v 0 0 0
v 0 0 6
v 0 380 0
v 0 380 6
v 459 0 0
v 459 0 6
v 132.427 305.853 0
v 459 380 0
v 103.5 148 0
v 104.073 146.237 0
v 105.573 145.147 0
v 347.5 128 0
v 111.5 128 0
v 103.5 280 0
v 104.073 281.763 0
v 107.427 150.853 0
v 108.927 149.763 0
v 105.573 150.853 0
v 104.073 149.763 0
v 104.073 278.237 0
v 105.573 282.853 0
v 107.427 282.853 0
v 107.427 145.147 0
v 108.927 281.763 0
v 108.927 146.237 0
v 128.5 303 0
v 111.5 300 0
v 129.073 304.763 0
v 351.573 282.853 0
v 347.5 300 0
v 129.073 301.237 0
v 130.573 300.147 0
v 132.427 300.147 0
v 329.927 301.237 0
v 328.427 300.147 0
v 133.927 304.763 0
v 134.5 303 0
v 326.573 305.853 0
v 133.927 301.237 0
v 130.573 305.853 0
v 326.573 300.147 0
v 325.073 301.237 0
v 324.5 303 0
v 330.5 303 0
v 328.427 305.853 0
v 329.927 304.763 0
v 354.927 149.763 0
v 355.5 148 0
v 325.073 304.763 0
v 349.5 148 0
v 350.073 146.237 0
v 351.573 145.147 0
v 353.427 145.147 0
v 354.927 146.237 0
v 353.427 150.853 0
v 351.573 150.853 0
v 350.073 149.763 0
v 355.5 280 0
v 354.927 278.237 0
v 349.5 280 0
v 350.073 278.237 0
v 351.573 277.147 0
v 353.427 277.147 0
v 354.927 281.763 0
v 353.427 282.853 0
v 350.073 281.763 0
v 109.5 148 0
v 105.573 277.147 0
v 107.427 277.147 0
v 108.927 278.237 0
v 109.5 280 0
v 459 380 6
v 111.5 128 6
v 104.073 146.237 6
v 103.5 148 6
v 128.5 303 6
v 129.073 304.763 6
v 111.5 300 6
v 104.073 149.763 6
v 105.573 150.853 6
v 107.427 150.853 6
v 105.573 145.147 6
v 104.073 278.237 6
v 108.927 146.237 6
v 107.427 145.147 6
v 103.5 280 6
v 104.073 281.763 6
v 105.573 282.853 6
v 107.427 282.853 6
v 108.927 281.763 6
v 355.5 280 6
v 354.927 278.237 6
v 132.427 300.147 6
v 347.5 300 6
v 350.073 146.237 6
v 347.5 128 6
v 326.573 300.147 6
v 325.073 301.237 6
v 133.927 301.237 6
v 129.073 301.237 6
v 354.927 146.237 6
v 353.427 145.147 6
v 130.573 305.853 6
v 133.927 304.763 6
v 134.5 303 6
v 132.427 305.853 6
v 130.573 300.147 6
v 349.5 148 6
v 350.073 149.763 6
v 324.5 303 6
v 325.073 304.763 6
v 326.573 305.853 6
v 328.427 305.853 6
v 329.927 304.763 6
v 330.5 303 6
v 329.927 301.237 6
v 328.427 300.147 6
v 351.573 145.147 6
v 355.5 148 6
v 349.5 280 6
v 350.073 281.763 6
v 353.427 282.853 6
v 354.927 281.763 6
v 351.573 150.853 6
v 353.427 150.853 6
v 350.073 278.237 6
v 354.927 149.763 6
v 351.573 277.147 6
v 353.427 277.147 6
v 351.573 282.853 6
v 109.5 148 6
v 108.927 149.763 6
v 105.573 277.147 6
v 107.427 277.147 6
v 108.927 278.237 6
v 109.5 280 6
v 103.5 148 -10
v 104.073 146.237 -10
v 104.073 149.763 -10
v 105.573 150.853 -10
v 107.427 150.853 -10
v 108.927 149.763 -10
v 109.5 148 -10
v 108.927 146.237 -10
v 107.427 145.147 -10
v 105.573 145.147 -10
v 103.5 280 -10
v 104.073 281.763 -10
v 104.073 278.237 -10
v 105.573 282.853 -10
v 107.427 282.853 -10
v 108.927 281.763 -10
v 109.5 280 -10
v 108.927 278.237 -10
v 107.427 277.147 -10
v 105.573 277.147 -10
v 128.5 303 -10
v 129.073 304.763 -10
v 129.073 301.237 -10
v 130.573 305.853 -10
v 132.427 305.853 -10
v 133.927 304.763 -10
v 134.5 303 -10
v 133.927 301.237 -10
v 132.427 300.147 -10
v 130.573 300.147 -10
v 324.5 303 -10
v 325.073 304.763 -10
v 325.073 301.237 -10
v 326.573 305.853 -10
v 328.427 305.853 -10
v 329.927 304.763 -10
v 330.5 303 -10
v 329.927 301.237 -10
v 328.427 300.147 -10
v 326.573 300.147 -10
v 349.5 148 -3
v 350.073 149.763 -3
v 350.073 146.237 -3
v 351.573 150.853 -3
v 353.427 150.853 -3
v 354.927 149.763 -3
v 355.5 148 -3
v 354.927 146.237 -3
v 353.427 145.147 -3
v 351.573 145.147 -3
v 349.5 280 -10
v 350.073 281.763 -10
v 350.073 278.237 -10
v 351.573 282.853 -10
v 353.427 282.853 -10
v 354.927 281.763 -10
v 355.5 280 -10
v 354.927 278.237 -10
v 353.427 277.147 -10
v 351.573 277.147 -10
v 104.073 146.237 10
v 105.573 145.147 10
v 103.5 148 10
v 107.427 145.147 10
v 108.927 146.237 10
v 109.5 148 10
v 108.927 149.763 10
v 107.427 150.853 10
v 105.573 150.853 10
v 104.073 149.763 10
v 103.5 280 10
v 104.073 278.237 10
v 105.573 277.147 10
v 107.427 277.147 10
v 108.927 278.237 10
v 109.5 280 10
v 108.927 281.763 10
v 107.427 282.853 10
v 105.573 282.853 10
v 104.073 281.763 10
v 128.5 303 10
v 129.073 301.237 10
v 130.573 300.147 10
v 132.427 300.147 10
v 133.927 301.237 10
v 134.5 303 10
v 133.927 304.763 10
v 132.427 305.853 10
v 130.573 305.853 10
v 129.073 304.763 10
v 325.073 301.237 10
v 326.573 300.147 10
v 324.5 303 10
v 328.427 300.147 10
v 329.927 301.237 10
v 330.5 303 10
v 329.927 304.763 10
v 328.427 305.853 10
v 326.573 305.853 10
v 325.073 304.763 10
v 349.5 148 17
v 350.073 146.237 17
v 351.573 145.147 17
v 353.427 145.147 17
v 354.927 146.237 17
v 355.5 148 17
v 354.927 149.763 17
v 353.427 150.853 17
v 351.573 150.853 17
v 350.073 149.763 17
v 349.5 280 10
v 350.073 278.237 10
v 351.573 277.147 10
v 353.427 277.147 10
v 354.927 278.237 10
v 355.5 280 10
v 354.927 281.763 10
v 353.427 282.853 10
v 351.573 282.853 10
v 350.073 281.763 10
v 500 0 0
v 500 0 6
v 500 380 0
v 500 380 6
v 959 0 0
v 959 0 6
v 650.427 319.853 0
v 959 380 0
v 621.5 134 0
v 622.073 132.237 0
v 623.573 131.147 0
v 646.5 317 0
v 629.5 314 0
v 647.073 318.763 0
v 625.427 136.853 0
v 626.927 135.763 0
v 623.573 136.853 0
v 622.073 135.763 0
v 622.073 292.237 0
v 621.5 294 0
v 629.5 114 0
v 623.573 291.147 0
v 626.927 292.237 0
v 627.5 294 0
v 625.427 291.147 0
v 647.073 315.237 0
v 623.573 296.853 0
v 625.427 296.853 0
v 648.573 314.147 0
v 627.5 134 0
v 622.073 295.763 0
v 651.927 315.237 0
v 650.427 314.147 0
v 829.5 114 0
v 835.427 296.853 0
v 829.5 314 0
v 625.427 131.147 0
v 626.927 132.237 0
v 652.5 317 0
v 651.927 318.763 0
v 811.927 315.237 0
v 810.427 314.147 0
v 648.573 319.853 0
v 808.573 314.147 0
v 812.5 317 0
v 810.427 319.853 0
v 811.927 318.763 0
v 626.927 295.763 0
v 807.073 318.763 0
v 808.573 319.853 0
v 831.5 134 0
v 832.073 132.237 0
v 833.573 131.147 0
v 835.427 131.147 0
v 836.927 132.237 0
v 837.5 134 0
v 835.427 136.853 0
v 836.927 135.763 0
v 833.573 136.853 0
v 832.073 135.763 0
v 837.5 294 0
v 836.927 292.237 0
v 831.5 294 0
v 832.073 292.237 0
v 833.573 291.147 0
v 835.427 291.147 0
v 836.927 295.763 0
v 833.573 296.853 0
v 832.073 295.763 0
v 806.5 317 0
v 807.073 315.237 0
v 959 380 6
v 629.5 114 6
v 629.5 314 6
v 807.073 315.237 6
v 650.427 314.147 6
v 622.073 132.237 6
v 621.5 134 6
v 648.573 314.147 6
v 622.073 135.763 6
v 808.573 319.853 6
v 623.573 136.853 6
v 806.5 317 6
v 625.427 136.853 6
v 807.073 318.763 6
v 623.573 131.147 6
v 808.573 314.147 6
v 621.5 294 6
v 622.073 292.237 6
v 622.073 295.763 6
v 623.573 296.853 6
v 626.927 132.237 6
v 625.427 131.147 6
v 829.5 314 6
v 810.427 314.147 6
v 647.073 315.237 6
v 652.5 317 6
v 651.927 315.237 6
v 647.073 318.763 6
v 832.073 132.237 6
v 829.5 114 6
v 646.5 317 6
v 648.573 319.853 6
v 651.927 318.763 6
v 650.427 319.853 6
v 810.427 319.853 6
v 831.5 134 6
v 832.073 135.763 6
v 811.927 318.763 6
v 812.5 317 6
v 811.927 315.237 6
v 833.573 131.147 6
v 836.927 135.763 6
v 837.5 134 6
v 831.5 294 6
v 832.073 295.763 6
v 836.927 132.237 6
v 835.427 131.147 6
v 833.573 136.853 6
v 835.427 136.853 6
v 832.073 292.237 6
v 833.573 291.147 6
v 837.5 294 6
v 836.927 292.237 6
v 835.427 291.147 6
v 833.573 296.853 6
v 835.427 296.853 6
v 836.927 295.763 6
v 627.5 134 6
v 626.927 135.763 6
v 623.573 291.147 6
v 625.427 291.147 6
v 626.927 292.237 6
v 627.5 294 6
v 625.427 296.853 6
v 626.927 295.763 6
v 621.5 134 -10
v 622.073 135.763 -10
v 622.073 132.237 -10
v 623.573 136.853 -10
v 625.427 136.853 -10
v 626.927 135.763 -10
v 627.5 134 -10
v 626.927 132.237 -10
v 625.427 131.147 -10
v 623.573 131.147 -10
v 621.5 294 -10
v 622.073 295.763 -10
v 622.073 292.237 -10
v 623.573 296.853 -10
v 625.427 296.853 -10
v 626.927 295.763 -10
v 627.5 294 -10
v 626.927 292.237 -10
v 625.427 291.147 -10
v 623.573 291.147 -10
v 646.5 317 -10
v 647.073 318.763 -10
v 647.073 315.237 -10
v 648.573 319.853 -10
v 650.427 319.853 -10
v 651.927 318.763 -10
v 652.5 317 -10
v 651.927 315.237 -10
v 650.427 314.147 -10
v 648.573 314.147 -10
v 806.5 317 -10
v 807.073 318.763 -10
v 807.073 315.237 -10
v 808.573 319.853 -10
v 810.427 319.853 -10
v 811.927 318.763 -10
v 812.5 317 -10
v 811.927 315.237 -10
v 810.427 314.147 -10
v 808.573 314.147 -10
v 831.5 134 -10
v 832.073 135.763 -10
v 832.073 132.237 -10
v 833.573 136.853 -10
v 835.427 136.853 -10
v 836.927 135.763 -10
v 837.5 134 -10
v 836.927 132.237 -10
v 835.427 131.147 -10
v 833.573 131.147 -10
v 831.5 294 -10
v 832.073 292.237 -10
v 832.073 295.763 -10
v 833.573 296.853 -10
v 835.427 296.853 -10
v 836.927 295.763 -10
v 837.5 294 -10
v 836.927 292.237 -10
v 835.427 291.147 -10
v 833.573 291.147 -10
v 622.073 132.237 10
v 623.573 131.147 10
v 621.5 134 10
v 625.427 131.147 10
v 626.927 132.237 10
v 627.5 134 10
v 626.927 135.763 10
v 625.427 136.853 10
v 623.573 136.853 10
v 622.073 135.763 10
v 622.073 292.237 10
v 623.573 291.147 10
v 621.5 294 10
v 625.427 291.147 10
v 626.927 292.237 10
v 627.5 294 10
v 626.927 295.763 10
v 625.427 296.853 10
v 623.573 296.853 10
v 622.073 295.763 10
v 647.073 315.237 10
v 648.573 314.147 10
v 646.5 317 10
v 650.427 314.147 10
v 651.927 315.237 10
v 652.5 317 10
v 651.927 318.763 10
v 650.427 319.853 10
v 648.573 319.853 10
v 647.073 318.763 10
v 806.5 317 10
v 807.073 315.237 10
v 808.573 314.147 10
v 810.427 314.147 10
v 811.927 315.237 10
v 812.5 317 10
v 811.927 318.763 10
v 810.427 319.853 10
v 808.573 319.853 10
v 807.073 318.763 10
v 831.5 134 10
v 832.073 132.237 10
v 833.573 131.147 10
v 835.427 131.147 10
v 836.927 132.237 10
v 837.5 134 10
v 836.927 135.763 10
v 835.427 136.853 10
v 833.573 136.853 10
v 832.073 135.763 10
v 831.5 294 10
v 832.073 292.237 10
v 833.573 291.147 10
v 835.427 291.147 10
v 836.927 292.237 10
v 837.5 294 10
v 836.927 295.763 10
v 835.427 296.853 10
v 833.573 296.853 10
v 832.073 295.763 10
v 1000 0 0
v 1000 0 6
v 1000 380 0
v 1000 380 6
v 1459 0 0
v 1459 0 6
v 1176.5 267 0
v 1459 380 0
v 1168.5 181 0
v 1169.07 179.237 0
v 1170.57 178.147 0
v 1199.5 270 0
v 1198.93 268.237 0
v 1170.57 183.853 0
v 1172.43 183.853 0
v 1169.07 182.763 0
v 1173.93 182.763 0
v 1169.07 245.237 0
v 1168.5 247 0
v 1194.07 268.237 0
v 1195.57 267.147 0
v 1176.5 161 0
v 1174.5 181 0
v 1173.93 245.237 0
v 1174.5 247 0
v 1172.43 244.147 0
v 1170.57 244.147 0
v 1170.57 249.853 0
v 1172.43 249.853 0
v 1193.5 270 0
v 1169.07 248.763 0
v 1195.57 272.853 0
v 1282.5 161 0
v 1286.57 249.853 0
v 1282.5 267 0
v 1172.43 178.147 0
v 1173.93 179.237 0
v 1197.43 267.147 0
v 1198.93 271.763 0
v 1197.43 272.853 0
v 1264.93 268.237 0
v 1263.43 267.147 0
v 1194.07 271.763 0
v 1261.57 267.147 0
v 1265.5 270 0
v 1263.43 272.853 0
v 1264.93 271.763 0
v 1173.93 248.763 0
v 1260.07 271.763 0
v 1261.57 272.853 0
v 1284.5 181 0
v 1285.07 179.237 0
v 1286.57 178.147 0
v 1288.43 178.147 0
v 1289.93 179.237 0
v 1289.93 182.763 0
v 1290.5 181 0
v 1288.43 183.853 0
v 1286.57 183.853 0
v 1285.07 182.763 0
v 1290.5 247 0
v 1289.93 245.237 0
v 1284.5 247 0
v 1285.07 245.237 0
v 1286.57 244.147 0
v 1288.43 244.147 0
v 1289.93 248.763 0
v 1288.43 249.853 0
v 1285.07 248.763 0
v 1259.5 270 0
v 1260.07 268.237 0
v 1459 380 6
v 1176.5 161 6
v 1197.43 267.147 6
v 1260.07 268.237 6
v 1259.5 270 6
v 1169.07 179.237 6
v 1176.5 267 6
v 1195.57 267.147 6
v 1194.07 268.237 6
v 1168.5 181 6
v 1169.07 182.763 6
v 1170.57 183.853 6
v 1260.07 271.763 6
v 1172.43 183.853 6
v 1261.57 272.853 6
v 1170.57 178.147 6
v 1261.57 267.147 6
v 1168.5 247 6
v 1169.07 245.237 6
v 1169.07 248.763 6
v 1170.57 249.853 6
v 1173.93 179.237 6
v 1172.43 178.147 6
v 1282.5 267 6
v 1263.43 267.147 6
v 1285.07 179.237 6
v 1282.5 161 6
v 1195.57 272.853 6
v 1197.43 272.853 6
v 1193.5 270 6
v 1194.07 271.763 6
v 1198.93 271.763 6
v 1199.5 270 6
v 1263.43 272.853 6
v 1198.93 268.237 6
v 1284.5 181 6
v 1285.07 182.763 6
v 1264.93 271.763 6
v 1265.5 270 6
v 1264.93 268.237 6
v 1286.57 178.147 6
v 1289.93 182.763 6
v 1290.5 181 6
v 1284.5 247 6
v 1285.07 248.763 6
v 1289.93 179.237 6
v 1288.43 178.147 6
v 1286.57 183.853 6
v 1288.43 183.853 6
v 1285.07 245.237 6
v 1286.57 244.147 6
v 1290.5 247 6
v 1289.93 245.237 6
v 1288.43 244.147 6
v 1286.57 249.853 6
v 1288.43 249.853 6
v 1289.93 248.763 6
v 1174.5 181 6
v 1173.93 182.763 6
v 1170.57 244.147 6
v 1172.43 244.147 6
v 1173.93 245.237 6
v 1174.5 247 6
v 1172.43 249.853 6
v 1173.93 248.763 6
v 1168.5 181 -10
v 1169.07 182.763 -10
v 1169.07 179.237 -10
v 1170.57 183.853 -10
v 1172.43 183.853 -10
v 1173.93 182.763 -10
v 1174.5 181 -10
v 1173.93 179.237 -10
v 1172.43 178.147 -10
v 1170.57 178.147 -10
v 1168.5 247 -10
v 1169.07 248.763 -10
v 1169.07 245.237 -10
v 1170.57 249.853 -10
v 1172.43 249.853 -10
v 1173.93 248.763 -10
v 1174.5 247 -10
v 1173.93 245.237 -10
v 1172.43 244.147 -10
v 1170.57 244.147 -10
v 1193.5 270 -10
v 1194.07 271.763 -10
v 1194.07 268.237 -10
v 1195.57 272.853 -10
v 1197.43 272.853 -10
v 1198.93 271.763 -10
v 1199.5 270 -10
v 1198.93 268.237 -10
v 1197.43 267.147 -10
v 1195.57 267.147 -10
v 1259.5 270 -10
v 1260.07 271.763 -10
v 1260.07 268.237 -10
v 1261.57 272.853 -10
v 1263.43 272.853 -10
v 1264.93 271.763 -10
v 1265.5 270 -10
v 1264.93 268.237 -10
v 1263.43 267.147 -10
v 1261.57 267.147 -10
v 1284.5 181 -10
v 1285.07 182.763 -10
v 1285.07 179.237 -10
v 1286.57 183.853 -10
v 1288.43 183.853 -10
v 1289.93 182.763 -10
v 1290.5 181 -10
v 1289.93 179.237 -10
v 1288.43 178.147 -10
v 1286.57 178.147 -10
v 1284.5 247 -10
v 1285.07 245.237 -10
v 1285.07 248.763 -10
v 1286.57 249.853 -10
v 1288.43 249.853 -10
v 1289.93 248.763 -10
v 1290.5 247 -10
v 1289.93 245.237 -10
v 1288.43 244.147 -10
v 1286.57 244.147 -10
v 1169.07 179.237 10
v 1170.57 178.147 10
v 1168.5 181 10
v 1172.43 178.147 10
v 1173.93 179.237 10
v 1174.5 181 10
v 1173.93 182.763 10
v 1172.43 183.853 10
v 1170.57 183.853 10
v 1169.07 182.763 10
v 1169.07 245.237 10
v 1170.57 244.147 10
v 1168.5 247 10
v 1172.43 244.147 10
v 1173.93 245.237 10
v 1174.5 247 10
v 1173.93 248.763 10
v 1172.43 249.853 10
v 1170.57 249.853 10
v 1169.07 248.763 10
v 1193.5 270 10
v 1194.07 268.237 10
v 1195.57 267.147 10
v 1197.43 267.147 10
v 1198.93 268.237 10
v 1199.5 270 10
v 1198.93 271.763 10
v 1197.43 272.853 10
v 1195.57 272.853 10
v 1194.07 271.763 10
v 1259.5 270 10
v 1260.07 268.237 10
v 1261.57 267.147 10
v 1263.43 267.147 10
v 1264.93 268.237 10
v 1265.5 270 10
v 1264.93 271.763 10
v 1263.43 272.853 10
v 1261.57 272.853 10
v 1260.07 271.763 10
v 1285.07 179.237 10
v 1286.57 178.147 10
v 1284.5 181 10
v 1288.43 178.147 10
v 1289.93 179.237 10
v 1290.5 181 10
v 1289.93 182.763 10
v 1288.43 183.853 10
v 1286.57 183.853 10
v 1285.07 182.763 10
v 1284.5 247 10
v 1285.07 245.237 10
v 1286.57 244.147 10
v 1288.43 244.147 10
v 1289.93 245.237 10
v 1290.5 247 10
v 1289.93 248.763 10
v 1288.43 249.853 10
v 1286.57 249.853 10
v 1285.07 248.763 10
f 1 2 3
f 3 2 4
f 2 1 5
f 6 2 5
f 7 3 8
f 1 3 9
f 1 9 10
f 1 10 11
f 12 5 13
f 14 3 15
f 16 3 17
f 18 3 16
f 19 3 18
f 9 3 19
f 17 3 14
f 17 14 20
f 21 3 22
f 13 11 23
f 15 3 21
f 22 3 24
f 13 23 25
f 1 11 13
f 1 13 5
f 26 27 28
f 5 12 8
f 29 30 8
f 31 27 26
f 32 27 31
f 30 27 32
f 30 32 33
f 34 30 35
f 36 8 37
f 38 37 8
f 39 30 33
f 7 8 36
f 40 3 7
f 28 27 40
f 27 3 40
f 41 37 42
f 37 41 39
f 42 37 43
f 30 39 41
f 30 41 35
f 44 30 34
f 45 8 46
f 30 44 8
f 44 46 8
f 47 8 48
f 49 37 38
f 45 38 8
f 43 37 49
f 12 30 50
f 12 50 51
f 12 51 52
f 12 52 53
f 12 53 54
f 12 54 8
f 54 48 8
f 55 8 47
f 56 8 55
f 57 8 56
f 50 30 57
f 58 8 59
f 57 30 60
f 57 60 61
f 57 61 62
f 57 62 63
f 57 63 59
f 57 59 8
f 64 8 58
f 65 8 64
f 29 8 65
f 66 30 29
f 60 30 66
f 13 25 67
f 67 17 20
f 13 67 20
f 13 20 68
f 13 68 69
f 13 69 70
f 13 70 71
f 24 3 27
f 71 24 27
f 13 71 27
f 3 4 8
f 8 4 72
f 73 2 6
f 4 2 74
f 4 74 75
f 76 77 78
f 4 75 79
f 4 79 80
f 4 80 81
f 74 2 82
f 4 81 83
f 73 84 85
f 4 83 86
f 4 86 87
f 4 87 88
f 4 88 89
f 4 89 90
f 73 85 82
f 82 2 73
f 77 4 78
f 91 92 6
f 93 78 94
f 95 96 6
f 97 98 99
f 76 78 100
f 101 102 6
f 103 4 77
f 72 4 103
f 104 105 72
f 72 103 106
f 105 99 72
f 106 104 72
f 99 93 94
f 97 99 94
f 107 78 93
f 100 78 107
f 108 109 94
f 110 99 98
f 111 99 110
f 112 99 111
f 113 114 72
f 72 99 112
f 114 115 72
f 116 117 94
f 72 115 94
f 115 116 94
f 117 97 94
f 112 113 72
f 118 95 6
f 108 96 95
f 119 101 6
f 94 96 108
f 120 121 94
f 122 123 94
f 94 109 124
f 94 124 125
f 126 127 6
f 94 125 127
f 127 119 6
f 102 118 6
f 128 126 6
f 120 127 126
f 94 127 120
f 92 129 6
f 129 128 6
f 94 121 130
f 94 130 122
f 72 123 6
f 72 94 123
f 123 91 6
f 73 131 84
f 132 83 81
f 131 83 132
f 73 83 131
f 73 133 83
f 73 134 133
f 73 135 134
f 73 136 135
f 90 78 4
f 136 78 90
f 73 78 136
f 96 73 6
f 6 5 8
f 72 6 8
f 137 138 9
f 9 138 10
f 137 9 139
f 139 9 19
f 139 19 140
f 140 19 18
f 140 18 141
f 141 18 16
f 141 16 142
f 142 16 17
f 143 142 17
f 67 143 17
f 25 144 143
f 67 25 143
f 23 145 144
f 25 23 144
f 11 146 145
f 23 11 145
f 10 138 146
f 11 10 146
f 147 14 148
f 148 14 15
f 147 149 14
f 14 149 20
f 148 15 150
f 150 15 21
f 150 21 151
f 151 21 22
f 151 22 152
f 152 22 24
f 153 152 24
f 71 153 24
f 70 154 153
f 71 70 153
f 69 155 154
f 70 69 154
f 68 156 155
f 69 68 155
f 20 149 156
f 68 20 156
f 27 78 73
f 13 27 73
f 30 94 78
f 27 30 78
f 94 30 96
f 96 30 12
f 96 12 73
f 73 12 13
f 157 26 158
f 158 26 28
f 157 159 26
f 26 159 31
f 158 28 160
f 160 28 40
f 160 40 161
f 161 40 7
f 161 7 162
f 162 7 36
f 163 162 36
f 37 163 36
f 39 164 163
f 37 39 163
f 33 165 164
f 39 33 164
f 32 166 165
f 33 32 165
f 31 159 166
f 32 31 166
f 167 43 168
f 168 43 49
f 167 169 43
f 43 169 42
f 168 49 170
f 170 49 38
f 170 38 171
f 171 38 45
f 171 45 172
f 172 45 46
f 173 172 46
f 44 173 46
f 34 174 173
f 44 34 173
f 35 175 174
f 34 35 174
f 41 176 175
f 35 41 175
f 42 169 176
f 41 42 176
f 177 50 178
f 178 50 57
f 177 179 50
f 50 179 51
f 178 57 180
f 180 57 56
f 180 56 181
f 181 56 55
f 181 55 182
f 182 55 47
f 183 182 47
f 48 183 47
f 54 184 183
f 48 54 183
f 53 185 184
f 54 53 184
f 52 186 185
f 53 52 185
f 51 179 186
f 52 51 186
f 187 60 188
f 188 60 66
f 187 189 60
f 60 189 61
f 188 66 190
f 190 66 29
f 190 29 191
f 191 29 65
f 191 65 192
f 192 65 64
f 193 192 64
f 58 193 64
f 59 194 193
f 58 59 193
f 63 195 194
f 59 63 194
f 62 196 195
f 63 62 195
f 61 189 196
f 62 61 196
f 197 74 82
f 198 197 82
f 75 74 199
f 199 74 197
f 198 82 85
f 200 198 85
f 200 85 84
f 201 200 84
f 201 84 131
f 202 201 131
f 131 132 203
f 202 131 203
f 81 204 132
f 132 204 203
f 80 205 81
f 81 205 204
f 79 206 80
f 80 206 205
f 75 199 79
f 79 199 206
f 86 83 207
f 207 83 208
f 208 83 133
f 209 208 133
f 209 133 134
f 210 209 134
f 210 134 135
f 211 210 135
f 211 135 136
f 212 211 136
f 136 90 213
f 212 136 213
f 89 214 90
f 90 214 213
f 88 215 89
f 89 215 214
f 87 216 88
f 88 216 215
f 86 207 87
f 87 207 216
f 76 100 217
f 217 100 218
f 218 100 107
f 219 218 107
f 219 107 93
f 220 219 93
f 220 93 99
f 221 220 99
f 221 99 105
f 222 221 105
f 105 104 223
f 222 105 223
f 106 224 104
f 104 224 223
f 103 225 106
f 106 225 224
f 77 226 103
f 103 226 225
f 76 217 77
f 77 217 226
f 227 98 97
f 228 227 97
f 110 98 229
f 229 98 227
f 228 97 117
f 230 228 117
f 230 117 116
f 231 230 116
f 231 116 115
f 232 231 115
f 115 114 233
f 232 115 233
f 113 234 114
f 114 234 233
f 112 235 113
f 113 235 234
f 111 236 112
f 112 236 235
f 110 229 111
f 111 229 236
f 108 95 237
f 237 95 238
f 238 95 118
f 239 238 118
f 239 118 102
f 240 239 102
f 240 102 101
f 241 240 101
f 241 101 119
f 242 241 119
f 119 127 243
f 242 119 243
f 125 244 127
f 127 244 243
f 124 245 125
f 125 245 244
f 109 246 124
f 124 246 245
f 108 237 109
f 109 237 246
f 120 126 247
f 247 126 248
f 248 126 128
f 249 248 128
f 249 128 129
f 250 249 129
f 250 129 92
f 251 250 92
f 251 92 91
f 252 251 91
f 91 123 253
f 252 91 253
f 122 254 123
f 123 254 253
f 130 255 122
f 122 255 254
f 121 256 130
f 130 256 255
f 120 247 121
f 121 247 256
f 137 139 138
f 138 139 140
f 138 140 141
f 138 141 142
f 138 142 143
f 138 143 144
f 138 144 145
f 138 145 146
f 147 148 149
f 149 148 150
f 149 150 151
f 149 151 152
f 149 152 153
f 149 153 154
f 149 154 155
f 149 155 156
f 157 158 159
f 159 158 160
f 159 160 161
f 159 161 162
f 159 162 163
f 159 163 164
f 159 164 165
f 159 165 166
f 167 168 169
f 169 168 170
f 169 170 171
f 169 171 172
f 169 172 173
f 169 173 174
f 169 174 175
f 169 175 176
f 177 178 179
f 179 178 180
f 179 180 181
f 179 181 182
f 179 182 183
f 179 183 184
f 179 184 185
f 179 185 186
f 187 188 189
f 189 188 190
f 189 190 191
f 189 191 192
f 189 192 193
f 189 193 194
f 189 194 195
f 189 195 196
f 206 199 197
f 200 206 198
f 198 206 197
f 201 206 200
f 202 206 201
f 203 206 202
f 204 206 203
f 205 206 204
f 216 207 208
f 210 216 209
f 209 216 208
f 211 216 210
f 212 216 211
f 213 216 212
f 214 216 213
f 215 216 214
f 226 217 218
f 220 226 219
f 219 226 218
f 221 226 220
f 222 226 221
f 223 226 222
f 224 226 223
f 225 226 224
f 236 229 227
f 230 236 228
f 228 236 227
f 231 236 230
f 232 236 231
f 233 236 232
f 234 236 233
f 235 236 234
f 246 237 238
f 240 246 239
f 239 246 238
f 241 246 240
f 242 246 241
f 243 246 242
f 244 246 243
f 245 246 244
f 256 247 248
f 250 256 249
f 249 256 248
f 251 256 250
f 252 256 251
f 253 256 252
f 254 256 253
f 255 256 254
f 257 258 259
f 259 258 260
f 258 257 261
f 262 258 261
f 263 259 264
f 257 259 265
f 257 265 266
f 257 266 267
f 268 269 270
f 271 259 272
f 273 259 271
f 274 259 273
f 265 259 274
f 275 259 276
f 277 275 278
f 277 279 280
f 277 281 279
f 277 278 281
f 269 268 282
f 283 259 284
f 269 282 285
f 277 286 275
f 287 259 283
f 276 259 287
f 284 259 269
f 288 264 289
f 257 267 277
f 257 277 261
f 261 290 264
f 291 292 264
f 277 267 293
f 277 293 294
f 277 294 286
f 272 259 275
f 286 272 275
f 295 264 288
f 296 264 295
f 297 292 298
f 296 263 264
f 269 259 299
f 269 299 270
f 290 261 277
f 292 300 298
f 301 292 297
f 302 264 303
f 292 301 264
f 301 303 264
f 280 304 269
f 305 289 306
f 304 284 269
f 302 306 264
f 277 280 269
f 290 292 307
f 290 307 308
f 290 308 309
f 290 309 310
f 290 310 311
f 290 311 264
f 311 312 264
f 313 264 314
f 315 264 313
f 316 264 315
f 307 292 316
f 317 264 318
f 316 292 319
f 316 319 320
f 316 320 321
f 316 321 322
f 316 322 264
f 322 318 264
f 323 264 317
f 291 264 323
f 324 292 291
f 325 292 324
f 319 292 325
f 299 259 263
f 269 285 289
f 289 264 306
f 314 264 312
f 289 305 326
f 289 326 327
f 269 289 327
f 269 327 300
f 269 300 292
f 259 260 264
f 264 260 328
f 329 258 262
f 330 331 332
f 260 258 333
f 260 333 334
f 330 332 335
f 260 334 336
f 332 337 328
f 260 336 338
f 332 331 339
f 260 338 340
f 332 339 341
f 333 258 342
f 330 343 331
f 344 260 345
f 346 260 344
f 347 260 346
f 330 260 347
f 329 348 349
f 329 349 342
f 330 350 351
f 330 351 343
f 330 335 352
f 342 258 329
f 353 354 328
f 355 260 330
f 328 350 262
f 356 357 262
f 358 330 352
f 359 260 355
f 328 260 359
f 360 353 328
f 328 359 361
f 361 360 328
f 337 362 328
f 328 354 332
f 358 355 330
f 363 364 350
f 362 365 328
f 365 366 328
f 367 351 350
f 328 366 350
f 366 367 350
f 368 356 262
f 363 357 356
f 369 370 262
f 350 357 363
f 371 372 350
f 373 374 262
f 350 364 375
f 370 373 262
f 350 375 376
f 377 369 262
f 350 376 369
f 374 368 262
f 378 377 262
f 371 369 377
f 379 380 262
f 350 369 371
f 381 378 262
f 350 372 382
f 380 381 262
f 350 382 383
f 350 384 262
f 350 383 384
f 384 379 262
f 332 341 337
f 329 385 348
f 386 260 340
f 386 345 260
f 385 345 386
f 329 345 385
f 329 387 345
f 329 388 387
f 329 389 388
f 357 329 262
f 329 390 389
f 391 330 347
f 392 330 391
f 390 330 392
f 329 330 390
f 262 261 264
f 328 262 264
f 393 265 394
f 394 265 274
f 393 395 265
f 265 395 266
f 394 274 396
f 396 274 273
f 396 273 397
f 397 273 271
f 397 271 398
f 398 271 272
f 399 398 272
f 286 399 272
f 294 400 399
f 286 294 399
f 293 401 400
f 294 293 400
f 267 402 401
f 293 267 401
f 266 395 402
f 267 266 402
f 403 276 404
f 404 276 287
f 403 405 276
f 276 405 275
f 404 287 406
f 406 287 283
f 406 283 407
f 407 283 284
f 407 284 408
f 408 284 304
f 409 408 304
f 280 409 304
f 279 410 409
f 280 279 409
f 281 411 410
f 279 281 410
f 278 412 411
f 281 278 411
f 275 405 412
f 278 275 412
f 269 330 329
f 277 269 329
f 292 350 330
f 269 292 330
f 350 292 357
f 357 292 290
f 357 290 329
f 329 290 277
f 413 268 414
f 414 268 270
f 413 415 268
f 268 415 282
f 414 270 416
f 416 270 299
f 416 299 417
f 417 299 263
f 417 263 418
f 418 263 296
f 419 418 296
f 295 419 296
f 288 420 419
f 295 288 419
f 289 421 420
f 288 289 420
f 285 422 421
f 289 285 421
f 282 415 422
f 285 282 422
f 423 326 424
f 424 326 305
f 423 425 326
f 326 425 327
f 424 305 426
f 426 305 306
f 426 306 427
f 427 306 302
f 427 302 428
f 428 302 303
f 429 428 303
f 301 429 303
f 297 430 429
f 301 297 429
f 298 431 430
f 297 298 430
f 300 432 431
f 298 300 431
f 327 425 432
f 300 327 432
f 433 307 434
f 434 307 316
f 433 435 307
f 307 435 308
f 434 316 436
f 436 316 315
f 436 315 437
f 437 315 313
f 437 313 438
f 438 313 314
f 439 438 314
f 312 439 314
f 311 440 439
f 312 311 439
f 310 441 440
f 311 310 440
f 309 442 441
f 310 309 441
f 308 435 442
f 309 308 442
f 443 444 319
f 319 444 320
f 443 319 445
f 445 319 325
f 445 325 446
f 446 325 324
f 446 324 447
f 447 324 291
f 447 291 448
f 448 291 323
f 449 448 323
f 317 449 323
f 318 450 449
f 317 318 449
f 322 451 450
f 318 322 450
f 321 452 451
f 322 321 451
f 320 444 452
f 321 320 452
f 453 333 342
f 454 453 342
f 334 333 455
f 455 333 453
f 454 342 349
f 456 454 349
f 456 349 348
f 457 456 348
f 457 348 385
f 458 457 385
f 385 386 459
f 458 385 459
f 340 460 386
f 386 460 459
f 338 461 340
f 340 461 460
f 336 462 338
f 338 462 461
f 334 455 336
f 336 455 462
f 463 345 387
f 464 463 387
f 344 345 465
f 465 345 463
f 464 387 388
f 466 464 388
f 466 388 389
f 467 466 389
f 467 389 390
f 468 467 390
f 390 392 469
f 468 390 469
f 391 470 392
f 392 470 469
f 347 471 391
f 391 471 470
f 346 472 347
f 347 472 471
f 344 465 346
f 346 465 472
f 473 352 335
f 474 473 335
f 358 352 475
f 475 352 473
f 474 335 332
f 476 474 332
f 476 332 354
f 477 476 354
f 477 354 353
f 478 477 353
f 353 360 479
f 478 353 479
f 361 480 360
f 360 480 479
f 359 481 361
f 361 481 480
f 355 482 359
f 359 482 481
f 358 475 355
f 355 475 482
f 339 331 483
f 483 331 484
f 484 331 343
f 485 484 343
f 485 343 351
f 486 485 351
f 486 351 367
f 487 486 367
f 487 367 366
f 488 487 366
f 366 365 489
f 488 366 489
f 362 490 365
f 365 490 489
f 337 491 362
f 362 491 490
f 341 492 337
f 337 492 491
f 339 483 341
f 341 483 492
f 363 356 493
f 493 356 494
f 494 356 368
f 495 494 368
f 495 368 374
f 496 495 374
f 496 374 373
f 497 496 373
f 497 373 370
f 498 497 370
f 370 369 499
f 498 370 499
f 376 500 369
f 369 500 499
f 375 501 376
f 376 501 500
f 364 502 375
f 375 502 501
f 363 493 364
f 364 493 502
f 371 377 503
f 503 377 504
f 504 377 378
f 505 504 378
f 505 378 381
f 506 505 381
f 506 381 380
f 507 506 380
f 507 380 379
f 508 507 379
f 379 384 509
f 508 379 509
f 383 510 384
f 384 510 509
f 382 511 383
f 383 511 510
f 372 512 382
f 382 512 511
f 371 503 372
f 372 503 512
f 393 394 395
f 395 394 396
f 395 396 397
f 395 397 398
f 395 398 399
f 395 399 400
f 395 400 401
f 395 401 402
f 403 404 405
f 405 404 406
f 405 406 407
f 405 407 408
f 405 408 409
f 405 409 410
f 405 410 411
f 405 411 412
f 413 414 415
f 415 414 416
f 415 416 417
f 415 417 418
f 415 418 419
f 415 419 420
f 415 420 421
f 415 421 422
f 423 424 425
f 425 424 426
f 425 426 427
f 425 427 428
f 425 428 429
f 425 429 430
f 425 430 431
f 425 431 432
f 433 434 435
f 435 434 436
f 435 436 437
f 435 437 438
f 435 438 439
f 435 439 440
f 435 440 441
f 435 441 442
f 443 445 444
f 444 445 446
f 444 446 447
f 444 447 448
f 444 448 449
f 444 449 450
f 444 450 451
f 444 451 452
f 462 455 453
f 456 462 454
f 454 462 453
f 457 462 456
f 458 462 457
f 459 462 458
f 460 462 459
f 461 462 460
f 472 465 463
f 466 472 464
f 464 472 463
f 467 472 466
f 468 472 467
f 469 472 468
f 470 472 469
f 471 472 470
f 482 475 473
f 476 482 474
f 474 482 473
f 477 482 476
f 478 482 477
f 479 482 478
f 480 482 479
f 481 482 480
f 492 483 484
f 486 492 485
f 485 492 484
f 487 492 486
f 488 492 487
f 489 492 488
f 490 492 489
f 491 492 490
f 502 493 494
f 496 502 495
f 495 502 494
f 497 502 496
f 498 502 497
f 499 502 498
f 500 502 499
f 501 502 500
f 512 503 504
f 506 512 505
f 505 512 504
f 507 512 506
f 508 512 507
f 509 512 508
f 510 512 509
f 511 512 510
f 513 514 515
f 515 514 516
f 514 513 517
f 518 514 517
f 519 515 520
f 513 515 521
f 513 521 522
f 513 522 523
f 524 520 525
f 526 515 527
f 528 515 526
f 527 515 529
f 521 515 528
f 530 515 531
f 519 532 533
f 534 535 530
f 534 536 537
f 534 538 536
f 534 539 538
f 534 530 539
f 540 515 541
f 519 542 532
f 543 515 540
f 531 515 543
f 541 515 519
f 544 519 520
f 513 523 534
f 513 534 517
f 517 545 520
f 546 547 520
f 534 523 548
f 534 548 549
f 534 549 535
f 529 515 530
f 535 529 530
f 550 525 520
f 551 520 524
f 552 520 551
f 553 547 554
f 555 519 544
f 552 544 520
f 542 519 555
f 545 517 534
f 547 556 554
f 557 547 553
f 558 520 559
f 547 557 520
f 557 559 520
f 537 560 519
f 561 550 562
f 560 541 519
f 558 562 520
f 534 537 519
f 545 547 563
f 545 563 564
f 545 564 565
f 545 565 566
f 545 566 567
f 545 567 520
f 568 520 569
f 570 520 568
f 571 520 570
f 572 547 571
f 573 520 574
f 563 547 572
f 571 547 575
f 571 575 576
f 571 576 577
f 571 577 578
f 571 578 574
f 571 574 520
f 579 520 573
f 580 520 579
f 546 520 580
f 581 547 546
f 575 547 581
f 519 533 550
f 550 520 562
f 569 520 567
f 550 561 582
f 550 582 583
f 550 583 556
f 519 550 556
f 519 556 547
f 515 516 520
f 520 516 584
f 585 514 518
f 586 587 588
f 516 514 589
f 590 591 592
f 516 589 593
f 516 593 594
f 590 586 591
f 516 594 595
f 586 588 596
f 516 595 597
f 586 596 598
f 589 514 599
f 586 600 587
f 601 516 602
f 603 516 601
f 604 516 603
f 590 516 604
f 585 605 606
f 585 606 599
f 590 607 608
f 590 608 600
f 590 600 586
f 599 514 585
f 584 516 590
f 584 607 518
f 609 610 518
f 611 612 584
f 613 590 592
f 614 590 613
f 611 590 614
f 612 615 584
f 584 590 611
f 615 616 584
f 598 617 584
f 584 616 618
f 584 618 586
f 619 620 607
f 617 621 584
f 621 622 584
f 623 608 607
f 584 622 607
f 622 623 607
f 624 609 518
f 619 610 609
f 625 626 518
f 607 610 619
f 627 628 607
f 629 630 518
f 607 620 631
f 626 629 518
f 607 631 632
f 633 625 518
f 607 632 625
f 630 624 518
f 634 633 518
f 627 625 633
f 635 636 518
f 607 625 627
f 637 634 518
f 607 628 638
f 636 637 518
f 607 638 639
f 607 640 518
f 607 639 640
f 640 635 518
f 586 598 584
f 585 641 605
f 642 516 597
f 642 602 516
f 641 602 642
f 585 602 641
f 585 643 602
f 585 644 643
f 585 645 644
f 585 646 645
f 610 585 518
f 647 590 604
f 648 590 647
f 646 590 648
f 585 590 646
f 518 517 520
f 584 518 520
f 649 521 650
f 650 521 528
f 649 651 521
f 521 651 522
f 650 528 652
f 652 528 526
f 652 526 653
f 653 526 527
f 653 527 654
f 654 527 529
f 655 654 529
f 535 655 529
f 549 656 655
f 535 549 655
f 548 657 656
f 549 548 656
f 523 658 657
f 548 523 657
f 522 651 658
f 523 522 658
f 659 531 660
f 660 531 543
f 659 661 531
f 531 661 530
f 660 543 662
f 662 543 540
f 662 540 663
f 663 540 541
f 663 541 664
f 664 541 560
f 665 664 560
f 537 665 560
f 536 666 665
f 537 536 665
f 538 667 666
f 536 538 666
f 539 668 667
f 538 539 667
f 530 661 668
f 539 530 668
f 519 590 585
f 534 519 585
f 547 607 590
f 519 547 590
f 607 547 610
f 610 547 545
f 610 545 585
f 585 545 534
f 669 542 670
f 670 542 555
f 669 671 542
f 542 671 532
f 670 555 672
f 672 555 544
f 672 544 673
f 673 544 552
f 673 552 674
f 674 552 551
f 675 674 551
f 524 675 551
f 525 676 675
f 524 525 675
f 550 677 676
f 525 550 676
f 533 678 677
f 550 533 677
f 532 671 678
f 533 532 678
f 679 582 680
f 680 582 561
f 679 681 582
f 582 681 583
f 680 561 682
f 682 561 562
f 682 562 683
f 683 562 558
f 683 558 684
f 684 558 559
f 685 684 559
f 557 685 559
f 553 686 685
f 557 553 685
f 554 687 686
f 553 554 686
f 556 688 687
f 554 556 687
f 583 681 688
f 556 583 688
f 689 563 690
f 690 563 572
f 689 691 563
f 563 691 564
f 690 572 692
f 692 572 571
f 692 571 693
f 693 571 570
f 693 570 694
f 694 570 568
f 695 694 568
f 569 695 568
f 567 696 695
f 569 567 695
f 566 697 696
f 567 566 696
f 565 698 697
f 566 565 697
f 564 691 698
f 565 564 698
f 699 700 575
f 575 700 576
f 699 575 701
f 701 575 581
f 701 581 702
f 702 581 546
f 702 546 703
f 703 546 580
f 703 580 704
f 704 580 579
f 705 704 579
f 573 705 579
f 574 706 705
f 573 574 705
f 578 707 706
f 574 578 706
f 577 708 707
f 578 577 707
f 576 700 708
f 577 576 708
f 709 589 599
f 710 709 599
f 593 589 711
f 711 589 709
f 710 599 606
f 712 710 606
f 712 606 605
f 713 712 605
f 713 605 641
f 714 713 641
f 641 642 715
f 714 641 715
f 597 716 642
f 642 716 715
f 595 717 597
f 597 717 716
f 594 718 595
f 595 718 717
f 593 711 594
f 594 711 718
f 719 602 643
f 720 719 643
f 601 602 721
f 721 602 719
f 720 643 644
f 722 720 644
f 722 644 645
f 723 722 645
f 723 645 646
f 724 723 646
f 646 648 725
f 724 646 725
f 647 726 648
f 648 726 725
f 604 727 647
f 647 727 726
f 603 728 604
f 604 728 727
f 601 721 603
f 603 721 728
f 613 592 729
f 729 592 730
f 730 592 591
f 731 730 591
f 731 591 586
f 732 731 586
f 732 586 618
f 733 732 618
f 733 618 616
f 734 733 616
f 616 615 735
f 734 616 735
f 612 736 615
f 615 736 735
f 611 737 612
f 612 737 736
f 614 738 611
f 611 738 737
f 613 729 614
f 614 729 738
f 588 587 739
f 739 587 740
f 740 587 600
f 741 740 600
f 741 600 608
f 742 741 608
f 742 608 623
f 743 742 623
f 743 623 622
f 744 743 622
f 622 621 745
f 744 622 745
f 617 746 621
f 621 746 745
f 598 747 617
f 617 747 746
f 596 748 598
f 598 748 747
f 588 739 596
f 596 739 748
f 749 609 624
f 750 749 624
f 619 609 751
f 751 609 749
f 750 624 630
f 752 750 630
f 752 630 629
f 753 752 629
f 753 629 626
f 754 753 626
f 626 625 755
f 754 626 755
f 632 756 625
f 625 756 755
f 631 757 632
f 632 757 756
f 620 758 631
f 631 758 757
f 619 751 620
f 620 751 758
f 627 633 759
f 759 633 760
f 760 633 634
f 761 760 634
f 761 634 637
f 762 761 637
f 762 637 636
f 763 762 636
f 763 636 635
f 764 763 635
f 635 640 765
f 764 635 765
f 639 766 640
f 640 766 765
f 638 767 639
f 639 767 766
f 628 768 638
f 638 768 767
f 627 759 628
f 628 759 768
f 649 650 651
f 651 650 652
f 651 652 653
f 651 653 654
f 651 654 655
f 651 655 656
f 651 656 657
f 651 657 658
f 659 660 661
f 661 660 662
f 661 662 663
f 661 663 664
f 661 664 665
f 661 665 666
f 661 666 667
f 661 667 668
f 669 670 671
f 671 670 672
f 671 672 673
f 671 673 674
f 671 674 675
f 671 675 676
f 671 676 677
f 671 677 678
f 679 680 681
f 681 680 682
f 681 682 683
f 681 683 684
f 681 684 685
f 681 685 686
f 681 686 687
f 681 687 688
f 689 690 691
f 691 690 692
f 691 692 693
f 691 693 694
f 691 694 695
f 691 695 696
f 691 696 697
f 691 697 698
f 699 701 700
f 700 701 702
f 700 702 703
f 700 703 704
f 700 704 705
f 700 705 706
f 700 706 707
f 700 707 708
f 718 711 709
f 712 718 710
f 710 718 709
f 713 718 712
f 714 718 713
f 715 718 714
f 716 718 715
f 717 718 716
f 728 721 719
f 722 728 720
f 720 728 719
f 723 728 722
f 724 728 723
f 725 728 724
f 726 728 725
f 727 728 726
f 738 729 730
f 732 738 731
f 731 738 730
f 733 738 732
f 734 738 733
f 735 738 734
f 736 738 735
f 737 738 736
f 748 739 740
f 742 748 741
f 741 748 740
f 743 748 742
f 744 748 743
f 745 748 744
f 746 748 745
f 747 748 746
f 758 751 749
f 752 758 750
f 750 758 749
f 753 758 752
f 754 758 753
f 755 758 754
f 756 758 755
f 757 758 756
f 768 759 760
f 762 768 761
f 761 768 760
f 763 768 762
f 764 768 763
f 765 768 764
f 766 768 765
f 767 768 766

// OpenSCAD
// Scintillator backplate

// Basic length variables
CenterSzintillator = [459/2, 380 - 80 - 172/2, 0];
screwheight = 20;
screwradius = 3;

// Toshiba Szintillator
SizeToshiba = [236, 172, 20];
color ("black", 1) {
  translate(CenterSzintillator+SizeToshiba/2+[screwradius+2,-20,-SizeToshiba[2]]){
    cylinder(h = screwheight , r=3);
  }
  translate(CenterSzintillator+SizeToshiba/2+[screwradius+2,-SizeToshiba[1]+20,-13]){
    cylinder(h = screwheight , r=3);
  }
  translate(CenterSzintillator-SizeToshiba/2-[screwradius+2,-20,0]){
    cylinder(h = screwheight , r=3);
  }
  translate(CenterSzintillator-SizeToshiba/2-[screwradius+2,-SizeToshiba[1]+20,0]){
    cylinder(h = screwheight , r=3);
  }
  translate(CenterSzintillator-SizeToshiba/2-[-20,-SizeToshiba[1]-screwradius,0]){
    cylinder(h = screwheight , r=3);
  }
  translate(CenterSzintillator-SizeToshiba/2-[-SizeToshiba[0]+20,-SizeToshiba[1]-screwradius,0]){
    cylinder(h = screwheight , r=3);
  }
}
difference(){
  cube([459, 380, 6]);
  translate(CenterSzintillator-SizeToshiba/2){
    cube(SizeToshiba);
  }
}

// Pingseng Szintillator
SizePinseng = [200, 200, 20];
translate([500,0,0]){
  color ("black", 1) {
    translate(CenterSzintillator+SizePinseng/2+[screwradius+2,-20,-20]){
      cylinder(h = screwheight , r=3);
    }
    translate(CenterSzintillator+SizePinseng/2+[screwradius+2,-SizePinseng[1]+20,-SizePinseng[2]]){
      cylinder(h = screwheight , r=3);
    }
    translate(CenterSzintillator-SizePinseng/2-[screwradius+2,-20,0]){
      cylinder(h = screwheight , r=3);
    }
    translate(CenterSzintillator-SizePinseng/2-[screwradius+2,-SizePinseng[1]+20,0]){
      cylinder(h = screwheight , r=3);
    }
    translate(CenterSzintillator-SizePinseng/2-[-20,-SizePinseng[1]-screwradius,0]){
      cylinder(h = screwheight , r=3);
    }
    translate(CenterSzintillator-SizePinseng/2-[-SizePinseng[0]+20,-SizePinseng[1]-screwradius,0]){
      cylinder(h = screwheight , r=3);
    }
  }
  difference(){
    cube([459, 380, 6]);
    translate(CenterSzintillator-SizePinseng/2){
      cube(SizePinseng);
    }
  }
}

// Applied Scintillation Technologies Szintillator
SizeAppScinTech = [106, 106, 20];
translate([1000,0,0]){
  color ("black", 1) {
    translate(CenterSzintillator+SizeAppScinTech/2+[screwradius+2,-20,-20]){
      cylinder(h = screwheight , r=3);
    }
    translate(CenterSzintillator+SizeAppScinTech/2+[screwradius+2,-SizeAppScinTech[1]+20,-SizeAppScinTech[2]]){
      cylinder(h = screwheight , r=3);
    }
    translate(CenterSzintillator-SizeAppScinTech/2-[screwradius+2,-20,0]){
      cylinder(h = screwheight , r=3);
    }
    translate(CenterSzintillator-SizeAppScinTech/2-[screwradius+2,-SizeAppScinTech[1]+20,0]){
      cylinder(h = screwheight , r=3);
    }
    translate(CenterSzintillator-SizeAppScinTech/2-[-20,-SizeAppScinTech[1]-screwradius,0]){
      cylinder(h = screwheight , r=3);
    }
    translate(CenterSzintillator-SizeAppScinTech/2-[-SizeAppScinTech[0]+20,-SizeAppScinTech[1]-screwradius, 0]){
      cylinder(h = screwheight , r=3);
    }
  }
  difference(){
    cube([459, 380, 6]);
    translate(CenterSzintillator-SizeAppScinTech/2){
      cube(SizeAppScinTech);
    }
  }
}
